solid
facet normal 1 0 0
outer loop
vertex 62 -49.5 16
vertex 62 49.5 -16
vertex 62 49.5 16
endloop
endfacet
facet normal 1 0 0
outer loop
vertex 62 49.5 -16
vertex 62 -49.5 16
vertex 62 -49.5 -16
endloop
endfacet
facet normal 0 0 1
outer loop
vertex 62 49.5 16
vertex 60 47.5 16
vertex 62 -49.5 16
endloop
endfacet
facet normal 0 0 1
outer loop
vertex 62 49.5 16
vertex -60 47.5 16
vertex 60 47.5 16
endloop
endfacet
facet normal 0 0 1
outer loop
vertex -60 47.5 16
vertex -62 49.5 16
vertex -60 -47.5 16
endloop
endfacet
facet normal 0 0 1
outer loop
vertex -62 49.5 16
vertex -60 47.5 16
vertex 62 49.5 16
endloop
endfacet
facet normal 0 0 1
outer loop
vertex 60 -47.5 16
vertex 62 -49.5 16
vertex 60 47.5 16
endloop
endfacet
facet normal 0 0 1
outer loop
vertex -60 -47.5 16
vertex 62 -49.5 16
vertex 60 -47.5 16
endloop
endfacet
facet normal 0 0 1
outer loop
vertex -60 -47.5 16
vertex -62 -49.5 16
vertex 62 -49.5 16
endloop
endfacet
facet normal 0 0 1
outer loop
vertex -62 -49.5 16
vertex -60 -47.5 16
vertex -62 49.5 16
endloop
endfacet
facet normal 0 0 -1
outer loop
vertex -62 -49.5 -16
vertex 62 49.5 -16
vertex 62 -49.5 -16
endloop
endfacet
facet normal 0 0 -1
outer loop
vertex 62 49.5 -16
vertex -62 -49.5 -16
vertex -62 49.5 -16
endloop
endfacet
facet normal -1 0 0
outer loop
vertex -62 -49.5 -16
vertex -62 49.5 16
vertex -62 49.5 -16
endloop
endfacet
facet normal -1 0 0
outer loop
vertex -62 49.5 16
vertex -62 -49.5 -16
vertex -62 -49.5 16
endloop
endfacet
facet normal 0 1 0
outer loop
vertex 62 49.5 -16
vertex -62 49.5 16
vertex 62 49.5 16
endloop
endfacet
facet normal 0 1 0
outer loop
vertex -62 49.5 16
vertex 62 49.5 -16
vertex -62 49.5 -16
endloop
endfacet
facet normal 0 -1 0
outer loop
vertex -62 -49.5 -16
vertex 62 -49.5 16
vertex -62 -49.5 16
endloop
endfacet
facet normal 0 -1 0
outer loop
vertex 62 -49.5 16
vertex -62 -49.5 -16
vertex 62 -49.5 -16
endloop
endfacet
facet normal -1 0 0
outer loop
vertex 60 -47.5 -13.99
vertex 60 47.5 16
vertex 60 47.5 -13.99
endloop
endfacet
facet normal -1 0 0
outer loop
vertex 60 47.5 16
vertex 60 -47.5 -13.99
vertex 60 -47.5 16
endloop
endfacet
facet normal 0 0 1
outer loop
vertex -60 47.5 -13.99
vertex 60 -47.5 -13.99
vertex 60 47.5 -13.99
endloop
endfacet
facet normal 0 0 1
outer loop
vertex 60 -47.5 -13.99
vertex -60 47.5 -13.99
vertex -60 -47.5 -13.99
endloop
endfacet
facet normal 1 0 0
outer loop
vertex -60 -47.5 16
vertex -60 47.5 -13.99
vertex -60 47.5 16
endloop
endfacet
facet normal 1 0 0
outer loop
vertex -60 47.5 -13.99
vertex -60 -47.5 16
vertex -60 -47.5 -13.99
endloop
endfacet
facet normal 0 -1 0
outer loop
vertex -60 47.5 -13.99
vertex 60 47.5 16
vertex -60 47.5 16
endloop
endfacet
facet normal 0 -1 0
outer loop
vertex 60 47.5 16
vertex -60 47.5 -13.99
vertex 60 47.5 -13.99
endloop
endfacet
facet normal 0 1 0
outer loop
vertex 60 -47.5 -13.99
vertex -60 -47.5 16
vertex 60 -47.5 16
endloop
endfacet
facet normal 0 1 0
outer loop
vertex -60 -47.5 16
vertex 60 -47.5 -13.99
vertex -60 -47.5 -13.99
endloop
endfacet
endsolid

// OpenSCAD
T = 2;
X = 120;
Y = 95;
Z = 30;
eps = 0.01;

difference() {
    cube([X+2*T, Y+2*T, Z+T], center = true);
    translate([0, 0, T/2 + eps])
        cube([X, Y, Z], center = true);
}
